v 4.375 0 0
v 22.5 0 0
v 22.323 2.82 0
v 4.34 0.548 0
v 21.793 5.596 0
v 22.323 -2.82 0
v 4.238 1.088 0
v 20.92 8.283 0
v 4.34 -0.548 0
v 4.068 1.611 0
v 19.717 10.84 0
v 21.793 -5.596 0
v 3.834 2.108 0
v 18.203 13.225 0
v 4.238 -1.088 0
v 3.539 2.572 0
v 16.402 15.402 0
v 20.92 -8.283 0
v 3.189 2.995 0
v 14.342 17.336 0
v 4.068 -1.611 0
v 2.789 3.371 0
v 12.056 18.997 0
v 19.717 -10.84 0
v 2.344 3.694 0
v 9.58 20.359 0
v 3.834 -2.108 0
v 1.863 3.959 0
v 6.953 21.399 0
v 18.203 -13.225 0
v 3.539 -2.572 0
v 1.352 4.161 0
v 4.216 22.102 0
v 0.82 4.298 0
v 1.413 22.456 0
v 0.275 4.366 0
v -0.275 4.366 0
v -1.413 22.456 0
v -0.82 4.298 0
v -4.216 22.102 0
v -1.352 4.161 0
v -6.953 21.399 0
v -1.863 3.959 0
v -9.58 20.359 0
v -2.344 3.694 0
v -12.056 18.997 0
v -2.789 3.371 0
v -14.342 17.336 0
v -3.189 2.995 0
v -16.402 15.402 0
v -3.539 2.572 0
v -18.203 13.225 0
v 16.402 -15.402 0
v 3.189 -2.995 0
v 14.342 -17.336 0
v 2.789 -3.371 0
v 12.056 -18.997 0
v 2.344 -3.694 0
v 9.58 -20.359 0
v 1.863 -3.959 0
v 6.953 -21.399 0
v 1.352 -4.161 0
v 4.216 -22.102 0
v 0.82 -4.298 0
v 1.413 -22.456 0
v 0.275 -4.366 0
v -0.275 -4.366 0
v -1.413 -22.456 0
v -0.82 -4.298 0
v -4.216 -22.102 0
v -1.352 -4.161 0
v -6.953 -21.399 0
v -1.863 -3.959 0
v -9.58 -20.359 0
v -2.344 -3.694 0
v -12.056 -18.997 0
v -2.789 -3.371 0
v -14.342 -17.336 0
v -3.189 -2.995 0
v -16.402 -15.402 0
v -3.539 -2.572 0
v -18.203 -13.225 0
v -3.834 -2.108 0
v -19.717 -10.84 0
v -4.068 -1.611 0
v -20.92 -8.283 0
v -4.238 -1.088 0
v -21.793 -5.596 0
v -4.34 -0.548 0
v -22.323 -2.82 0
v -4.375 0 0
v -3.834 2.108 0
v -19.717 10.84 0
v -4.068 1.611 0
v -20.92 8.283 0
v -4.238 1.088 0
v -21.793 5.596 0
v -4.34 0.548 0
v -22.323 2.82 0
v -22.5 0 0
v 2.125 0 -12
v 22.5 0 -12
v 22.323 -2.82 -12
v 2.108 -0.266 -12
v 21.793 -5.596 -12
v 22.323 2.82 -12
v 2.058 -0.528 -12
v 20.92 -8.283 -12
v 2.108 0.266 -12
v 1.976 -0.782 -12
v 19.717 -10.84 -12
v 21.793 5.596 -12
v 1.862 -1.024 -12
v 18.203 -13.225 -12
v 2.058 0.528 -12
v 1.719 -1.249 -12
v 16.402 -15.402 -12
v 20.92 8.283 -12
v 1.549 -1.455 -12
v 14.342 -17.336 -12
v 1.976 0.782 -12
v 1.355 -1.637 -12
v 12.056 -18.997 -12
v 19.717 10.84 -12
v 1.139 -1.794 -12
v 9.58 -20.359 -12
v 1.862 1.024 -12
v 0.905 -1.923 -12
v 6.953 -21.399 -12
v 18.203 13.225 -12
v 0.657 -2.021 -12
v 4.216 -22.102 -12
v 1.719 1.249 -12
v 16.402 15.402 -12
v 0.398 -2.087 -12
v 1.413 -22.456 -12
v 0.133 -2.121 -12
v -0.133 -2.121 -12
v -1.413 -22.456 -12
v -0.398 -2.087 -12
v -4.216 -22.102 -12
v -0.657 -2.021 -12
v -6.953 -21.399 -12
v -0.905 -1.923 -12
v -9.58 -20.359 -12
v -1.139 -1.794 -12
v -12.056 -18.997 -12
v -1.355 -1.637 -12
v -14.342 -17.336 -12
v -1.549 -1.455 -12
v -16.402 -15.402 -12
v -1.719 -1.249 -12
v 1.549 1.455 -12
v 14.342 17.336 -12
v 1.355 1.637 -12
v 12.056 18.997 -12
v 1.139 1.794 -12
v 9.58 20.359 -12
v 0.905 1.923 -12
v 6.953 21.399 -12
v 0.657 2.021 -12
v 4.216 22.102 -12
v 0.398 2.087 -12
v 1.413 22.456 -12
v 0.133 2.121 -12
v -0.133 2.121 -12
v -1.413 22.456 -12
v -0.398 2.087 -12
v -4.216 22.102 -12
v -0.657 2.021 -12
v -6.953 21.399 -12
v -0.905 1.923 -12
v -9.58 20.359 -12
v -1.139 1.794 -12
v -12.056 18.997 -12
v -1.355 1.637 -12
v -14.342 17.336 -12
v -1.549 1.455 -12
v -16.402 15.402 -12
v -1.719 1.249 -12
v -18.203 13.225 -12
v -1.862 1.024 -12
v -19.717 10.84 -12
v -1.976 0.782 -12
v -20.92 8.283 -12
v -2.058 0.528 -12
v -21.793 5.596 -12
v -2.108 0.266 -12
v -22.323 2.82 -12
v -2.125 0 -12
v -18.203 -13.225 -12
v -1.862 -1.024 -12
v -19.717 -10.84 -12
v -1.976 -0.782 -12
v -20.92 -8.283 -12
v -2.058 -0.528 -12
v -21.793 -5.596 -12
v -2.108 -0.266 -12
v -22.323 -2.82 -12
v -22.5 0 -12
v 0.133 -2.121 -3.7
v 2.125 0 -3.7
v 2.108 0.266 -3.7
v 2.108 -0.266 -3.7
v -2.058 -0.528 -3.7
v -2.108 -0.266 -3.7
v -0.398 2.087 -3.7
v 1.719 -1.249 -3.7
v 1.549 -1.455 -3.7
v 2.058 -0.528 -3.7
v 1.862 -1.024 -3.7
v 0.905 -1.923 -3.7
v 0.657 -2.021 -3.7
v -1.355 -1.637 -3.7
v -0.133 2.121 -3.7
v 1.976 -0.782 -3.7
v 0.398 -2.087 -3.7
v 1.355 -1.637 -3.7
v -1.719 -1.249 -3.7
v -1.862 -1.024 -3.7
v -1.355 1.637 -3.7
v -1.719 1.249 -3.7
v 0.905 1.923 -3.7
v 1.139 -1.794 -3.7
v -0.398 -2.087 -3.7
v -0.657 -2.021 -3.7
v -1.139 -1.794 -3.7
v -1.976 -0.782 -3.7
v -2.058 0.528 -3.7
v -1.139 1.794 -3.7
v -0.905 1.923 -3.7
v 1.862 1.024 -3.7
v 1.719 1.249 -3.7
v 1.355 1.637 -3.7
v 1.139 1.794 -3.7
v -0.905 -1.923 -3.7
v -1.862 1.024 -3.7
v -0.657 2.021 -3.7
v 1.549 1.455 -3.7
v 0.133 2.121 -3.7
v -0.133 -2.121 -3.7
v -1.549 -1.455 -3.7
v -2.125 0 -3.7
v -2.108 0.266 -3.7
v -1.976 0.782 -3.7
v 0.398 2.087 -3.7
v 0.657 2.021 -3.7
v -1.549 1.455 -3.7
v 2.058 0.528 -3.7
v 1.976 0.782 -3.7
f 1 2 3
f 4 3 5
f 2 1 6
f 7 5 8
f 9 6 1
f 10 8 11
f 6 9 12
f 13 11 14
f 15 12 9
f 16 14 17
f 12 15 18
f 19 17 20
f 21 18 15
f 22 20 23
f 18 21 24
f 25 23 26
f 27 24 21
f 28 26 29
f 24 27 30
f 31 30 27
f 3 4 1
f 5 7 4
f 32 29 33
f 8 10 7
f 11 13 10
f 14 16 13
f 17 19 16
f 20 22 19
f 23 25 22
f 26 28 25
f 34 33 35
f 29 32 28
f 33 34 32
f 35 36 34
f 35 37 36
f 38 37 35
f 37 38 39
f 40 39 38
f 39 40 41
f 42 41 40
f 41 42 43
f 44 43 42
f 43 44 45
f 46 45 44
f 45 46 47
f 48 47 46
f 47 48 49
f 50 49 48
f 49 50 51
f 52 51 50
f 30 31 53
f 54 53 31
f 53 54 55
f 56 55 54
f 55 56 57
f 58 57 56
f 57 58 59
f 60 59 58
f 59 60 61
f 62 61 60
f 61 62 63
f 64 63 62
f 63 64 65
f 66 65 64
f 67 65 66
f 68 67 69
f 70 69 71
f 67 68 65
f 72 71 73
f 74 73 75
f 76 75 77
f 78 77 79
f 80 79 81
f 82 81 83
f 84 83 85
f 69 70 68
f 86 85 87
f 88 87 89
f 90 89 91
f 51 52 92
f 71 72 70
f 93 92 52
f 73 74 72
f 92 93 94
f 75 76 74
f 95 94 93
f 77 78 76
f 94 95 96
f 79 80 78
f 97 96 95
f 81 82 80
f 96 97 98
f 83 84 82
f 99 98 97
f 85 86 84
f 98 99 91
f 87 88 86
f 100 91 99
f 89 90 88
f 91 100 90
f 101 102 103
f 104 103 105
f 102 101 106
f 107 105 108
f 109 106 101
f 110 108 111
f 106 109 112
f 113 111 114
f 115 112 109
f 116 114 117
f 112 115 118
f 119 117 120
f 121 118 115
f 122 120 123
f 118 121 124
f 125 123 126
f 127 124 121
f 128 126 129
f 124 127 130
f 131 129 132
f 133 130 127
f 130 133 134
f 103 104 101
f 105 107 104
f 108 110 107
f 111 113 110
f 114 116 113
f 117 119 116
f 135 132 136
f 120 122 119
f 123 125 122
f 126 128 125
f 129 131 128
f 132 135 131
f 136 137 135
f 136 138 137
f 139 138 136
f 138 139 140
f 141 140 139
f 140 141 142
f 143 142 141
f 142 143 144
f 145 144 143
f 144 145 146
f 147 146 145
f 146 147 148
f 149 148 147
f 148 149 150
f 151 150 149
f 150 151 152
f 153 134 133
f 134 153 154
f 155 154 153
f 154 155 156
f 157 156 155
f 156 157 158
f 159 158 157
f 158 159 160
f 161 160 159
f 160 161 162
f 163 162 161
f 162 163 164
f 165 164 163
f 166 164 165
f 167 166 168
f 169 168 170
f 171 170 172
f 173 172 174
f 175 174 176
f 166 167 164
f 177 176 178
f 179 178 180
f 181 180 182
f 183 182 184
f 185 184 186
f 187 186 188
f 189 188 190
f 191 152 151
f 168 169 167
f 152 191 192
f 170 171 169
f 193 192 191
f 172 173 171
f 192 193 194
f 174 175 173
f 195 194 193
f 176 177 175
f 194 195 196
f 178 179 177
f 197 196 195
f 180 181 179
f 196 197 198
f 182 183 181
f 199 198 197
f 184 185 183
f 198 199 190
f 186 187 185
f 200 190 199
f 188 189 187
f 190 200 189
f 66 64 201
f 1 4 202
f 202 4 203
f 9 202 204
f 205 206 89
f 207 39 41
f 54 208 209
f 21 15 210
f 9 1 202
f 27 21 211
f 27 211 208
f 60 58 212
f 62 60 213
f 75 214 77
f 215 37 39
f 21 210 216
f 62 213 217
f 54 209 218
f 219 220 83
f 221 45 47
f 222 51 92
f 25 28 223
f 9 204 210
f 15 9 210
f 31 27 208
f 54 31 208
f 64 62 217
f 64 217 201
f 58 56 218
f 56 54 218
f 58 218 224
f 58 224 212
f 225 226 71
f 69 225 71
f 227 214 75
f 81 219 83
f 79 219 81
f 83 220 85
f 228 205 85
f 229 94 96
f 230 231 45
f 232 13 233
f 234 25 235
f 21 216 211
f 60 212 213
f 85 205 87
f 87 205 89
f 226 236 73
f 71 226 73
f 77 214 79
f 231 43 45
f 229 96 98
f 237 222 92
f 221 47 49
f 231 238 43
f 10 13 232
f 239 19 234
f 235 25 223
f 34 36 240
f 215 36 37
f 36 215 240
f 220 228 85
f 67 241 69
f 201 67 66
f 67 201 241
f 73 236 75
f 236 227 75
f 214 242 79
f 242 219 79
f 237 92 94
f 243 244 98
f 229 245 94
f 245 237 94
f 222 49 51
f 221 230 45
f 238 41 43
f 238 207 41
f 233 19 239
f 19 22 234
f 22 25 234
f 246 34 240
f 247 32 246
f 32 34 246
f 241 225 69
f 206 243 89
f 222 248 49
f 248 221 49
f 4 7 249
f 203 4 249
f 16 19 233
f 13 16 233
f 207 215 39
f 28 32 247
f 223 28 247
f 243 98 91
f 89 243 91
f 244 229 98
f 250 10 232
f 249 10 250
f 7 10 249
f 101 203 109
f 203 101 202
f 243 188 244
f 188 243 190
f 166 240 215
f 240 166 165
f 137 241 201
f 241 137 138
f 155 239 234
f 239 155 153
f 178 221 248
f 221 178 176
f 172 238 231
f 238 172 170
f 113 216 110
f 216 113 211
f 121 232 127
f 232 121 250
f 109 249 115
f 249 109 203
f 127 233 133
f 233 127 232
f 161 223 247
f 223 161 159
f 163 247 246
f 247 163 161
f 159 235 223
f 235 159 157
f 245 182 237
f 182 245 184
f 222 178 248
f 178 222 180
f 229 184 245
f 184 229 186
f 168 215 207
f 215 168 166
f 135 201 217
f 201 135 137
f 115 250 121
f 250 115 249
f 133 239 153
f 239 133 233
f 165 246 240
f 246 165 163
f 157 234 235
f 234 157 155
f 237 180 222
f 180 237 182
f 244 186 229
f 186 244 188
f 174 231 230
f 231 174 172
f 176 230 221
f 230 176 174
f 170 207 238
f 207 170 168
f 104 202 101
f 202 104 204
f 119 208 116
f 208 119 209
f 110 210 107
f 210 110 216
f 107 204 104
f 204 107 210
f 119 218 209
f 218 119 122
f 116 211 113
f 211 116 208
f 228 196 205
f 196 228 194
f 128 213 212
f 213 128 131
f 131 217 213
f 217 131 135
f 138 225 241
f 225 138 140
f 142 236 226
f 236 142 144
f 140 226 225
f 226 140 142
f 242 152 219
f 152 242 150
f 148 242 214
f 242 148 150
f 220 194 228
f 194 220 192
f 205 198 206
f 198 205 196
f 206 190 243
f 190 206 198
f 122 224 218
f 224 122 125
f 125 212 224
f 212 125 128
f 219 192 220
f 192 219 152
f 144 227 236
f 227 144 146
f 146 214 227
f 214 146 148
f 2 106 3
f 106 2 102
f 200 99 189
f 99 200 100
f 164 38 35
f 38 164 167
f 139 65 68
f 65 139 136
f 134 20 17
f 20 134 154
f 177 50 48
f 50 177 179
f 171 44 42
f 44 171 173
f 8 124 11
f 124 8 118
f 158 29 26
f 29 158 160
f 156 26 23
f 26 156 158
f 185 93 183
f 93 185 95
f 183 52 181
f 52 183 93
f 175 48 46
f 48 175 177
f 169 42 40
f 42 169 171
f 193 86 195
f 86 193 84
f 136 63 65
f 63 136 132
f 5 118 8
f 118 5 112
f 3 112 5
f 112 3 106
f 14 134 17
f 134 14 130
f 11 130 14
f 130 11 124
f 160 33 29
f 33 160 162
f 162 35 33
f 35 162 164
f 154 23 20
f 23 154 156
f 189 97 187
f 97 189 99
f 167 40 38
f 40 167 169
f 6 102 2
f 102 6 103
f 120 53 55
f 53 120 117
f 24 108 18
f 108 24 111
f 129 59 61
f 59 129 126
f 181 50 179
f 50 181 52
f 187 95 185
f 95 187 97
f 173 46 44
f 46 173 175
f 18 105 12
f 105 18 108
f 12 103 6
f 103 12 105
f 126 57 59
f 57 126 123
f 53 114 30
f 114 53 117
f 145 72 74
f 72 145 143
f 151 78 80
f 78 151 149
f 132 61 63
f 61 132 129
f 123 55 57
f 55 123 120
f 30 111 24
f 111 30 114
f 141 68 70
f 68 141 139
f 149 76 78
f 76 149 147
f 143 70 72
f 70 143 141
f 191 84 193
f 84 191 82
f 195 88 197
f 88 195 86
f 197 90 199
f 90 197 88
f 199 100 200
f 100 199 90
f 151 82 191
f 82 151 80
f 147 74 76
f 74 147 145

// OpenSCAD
$fn = 50;


difference() {
	union() {
		translate(v = [0, 0, -12.0000000000]) {
			cylinder(h = 12, r = 22.5000000000);
		}
	}
	union() {
		translate(v = [0, 0, 0]) {
			rotate(a = [0, 0, 0]) {
				difference() {
					union() {
						translate(v = [0, 0, -12.0000000000]) {
							cylinder(h = 12, r = 2.0000000000);
						}
						translate(v = [0, 0, -3.7000000000]) {
							cylinder(h = 3.7000000000, r1 = 2.1250000000, r2 = 4.3750000000);
						}
						translate(v = [0, 0, -12.0000000000]) {
							cylinder(h = 12, r = 2.1250000000);
						}
						translate(v = [0, 0, -12.0000000000]) {
							cylinder(h = 12, r = 2.0000000000);
						}
					}
					union();
				}
			}
		}
	}
}
